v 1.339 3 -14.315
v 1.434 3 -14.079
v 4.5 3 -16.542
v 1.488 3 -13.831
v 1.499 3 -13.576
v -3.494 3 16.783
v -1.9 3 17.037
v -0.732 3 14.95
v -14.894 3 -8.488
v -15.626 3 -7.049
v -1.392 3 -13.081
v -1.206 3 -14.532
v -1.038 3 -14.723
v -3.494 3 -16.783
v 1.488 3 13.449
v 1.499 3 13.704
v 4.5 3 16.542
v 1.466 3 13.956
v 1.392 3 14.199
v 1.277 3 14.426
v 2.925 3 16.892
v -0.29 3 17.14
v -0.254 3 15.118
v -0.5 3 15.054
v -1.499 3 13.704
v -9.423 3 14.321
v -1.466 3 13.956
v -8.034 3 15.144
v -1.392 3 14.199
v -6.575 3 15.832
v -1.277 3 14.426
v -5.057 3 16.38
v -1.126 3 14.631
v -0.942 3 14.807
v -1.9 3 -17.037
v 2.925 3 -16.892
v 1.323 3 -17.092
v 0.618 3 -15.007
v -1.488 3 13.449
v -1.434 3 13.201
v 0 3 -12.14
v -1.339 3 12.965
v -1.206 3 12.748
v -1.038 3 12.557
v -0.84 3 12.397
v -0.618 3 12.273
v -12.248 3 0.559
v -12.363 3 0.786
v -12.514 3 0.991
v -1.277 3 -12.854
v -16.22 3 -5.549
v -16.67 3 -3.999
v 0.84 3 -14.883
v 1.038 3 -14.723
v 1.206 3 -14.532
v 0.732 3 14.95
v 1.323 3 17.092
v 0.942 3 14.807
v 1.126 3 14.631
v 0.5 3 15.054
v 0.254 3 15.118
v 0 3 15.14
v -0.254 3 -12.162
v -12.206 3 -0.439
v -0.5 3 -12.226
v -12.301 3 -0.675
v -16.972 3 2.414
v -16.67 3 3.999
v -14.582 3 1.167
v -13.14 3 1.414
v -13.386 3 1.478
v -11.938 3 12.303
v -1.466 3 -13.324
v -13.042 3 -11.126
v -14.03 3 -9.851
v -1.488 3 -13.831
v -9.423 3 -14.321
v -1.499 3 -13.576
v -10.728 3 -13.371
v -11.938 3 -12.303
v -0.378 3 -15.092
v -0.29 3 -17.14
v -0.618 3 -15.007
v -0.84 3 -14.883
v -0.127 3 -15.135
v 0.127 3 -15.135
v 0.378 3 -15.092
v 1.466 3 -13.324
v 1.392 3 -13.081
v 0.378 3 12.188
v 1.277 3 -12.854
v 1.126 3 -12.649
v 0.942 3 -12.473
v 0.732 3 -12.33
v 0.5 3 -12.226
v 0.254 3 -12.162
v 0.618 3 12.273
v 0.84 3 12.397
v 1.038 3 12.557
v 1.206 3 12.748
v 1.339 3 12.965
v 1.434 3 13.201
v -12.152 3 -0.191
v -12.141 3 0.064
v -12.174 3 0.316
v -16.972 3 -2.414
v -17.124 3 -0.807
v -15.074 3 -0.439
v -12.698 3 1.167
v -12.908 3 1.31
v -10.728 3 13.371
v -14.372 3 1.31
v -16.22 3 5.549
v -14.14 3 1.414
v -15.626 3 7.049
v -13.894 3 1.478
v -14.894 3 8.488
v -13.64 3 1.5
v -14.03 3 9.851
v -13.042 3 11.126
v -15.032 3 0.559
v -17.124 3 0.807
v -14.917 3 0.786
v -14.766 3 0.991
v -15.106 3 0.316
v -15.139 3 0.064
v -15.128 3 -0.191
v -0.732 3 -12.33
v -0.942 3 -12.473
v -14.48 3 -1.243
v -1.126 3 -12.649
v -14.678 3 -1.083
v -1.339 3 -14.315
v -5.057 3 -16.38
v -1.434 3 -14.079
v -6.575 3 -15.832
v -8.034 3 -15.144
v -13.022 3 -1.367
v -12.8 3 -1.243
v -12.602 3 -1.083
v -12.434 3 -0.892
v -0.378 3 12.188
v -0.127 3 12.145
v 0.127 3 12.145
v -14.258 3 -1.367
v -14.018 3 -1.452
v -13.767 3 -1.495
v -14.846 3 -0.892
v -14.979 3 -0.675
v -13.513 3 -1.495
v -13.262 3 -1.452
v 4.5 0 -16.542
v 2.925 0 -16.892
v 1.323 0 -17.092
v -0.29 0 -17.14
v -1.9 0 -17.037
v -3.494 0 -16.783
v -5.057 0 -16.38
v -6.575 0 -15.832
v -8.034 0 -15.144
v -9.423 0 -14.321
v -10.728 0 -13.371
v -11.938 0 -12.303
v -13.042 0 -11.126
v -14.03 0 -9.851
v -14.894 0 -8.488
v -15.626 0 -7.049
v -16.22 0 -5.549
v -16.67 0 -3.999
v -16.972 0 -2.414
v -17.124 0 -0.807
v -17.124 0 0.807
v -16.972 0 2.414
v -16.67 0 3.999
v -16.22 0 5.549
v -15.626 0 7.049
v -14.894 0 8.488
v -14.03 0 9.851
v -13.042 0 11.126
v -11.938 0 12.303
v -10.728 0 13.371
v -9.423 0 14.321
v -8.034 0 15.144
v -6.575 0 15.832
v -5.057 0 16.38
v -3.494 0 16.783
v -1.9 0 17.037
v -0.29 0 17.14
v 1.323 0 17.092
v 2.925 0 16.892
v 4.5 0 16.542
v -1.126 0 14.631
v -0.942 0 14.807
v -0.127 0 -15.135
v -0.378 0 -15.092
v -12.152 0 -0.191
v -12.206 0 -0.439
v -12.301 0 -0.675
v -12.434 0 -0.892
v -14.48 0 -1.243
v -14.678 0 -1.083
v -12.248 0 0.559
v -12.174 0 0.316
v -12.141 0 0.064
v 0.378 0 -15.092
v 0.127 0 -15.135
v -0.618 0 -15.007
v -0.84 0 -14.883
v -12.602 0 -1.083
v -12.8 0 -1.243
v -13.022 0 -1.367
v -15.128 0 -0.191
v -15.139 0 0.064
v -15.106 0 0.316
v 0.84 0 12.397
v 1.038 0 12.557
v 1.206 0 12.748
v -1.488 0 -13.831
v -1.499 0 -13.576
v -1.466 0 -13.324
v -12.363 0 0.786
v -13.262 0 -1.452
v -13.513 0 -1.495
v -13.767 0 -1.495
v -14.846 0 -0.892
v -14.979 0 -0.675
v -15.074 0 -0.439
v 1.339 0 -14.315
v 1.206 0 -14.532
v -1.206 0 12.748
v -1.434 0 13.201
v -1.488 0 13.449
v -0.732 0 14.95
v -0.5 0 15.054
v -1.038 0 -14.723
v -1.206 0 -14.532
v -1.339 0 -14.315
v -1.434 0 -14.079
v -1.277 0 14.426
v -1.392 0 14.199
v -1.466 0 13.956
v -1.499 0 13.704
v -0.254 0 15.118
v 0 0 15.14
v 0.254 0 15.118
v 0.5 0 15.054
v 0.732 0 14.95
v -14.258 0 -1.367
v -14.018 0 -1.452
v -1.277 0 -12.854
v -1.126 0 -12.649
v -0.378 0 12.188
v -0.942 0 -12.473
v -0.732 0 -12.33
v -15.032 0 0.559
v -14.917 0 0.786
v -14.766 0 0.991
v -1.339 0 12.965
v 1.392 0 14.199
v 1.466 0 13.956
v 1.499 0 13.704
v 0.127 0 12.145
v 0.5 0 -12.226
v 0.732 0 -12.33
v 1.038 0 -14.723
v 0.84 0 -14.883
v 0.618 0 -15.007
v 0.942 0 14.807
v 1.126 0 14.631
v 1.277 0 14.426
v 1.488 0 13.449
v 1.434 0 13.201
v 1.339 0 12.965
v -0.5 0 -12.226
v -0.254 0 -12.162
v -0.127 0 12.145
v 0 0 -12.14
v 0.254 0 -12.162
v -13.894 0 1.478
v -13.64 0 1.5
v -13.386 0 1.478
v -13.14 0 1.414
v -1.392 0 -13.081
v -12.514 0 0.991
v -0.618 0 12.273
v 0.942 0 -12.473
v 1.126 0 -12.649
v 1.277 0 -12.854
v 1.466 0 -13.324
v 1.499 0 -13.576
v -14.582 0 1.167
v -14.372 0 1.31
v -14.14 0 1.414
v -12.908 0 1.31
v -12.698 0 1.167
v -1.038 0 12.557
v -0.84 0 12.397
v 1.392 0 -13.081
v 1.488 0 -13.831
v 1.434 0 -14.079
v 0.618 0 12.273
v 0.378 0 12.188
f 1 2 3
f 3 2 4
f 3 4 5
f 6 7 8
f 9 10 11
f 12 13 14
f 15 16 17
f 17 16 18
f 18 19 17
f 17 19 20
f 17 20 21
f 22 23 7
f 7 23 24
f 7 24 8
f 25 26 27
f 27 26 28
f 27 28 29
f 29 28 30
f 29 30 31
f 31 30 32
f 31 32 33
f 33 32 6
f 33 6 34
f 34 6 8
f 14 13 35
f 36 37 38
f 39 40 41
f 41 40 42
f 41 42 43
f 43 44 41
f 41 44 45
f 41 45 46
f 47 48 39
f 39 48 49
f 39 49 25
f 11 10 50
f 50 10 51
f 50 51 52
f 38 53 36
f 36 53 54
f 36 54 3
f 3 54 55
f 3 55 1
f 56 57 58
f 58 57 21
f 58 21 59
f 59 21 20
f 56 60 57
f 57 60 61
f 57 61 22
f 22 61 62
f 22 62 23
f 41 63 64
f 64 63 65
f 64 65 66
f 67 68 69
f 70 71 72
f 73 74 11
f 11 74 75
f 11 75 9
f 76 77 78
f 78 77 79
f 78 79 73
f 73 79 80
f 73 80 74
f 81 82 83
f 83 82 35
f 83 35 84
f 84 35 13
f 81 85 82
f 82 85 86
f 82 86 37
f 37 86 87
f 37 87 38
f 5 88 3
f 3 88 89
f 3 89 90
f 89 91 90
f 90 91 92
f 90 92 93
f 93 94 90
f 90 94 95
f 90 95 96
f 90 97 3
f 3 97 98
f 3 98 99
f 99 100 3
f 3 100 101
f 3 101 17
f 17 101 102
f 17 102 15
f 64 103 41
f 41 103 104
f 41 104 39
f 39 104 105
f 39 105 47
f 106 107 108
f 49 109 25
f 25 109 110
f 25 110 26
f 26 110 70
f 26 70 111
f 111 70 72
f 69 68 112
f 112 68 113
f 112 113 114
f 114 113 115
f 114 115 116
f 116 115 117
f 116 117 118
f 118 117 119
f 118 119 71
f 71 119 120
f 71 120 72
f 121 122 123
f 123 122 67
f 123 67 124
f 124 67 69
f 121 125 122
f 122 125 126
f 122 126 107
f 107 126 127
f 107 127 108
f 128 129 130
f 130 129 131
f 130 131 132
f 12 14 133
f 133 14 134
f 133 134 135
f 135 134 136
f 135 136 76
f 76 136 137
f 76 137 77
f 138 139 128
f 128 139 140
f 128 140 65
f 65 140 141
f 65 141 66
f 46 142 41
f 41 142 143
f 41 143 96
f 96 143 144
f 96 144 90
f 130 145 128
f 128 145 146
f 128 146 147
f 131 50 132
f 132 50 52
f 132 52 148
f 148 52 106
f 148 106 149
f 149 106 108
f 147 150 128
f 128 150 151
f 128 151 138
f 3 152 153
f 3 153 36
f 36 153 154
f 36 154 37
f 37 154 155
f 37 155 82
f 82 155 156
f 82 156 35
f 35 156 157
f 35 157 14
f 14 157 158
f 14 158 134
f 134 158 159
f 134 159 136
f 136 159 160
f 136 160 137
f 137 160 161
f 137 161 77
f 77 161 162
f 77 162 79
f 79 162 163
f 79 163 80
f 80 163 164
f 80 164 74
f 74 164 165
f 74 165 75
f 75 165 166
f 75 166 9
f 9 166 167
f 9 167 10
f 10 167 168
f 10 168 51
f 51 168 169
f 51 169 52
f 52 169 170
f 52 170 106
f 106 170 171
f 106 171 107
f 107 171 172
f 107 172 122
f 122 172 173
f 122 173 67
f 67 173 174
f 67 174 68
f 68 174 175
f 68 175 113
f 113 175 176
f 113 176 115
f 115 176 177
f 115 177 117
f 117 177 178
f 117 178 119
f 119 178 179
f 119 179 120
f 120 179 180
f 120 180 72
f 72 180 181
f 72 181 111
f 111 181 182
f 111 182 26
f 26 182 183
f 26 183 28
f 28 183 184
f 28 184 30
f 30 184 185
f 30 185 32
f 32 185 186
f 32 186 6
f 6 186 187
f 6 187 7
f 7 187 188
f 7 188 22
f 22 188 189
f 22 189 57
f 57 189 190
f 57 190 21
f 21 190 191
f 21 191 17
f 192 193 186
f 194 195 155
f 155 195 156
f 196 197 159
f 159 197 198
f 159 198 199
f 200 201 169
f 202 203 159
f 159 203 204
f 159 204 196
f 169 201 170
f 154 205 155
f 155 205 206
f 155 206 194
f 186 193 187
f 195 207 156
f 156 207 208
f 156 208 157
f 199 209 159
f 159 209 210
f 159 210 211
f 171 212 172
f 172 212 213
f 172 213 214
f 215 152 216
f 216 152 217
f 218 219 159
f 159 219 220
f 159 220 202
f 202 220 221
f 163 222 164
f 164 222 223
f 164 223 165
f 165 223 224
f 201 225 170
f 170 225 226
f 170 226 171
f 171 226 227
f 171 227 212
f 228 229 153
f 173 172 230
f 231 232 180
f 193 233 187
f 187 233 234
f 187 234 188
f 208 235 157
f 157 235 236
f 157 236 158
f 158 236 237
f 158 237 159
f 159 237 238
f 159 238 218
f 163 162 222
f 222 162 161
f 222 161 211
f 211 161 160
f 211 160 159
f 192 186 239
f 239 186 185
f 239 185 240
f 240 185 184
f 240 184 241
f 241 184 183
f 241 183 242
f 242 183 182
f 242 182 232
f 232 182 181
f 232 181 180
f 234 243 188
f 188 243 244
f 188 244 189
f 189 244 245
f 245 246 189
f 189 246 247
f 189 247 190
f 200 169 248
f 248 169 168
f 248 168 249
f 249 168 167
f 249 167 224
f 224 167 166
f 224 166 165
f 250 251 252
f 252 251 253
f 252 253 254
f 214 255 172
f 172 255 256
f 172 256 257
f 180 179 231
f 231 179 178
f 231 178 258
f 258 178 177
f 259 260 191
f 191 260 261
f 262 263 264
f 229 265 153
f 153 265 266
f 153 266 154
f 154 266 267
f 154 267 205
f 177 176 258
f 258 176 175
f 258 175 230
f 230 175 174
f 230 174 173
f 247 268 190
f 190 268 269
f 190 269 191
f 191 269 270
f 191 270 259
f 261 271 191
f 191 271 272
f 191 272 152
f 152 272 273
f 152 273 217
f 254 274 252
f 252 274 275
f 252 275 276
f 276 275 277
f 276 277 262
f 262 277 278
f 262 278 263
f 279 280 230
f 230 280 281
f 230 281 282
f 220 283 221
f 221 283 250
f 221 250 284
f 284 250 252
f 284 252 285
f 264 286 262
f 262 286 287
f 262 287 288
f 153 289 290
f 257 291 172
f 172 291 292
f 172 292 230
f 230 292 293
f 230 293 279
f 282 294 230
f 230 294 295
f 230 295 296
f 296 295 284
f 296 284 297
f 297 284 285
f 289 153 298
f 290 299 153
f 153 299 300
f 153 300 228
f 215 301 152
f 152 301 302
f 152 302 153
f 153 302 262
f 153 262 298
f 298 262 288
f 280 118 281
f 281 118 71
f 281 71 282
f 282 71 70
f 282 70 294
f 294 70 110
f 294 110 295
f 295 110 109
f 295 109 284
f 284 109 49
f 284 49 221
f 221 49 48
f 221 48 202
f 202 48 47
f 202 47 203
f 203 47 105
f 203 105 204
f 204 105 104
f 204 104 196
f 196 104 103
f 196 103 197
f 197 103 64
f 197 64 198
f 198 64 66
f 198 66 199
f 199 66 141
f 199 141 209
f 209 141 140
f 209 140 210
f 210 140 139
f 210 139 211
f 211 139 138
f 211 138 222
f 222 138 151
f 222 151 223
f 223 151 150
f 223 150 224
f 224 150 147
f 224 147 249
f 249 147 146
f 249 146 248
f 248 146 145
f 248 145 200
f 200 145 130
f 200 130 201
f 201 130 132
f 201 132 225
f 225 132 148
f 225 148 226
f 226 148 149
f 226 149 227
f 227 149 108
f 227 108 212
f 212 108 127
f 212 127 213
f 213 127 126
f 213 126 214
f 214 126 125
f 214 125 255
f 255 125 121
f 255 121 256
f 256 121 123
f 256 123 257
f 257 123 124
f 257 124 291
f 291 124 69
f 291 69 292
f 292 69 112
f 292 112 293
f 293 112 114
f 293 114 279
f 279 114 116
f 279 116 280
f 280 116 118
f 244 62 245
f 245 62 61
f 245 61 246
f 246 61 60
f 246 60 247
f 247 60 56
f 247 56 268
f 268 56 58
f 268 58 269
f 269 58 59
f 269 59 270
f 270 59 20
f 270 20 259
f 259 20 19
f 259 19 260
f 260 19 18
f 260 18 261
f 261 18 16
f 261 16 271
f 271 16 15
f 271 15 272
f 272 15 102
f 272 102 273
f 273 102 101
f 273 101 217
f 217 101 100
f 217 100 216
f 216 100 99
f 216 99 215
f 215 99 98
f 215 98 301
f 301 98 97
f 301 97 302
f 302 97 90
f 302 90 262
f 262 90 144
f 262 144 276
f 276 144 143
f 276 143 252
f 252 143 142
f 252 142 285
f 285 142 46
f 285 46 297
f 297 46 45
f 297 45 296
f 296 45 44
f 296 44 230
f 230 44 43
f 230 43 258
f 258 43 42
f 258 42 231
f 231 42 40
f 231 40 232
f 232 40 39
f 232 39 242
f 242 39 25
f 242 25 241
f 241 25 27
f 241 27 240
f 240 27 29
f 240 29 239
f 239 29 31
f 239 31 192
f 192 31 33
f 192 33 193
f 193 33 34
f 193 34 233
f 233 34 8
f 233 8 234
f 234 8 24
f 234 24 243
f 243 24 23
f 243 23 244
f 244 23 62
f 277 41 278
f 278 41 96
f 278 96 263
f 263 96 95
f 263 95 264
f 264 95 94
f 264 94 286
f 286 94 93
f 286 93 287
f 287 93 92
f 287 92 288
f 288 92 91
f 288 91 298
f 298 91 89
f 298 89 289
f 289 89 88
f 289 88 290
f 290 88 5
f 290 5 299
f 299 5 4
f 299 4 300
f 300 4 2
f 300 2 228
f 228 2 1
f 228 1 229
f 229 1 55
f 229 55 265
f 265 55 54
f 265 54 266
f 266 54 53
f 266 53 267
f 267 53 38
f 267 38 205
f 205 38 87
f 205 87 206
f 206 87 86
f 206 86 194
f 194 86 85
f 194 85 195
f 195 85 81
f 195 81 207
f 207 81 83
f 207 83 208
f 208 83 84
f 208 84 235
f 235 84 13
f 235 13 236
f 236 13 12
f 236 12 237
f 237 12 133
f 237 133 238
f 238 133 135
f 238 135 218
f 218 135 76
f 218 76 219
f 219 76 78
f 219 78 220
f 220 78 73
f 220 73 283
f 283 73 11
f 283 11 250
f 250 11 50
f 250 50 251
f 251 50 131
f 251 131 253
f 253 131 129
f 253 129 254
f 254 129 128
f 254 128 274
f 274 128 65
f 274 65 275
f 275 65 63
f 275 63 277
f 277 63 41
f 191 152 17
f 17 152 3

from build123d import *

# Parameters (mm, degrees)
CROQUIS2_R                 = 1.5
CORTAR_EXTRUIR1_DEPTH      = 10
CROQUIS3_R                 = 1.5
SALIENTE_EXTRUIR1_DEPTH    = 3
CORTAR_EXTRUIR2_DEPTH      = 21
CORTAR_EXTRUIR2_DEPTH_BACK = 19
CROQUIS4_W                 = 22.988642253
CROQUIS4_H                 = 9.839710734
CROQUIS5_W                 = 15
CROQUIS5_H                 = 36.969240602
CORTAR_EXTRUIR3_DEPTH      = 19
CROQUIS6_W                 = 9.874263727
CROQUIS6_H                 = 12.802666517
SALIENTE_EXTRUIR2_DEPTH    = 3


with BuildPart() as part:
    # Croquis1 → Revolución1 (revolve)
    with BuildSketch(Plane.XY, mode=Mode.PRIVATE) as revoluci_n1_sk:
        Polygon((-4, 0), (-4, 7), (-5, 7), (-10.142857143, 3), (-17.142857143, 3), (-17.142857143, 0), (-14, 0), align=None)
    revolve(revoluci_n1_sk.sketch.rotate(Axis((0, 0, 0), (0, 1, 0)), 270), axis=Axis((0, 0, 0), (0, 1, 0)))

    # Croquis2 → Cortar-Extruir1 (cut)
    with BuildSketch(Plane(origin=(0, 3, 0), x_dir=(1, 0, 0), z_dir=(0, 1, 0))):
        with Locations(Location((0, 13.64, 0), (0, 0, 270))):
            Circle(CROQUIS2_R)
        with Locations(Location((13.64, 0, 0), (0, 0, 270))):
            Circle(CROQUIS2_R)
        with Locations(Location((0, -13.64, 0), (0, 0, 270))):
            Circle(CROQUIS2_R)
        with Locations(Location((-13.64, 0, 0), (0, 0, 270))):
            Circle(CROQUIS2_R)
    extrude(amount=-CORTAR_EXTRUIR1_DEPTH, mode=Mode.SUBTRACT)

    # Croquis3 → Saliente-Extruir1 (add)
    with BuildSketch(Plane(origin=(0, 3, 0), x_dir=(1, 0, 0), z_dir=(0, 1, 0))):
        with Locations((13.64, 0)):
            Circle(CROQUIS3_R)
    extrude(amount=-SALIENTE_EXTRUIR1_DEPTH)

    # Croquis4 → Cortar-Extruir2 (cut, two sides: drawn at the far end of the back side and taken through both)
    with BuildSketch(Plane.XY.offset(-CORTAR_EXTRUIR2_DEPTH_BACK)):
        with Locations((-1.351463984, 7.919855367)):
            Rectangle(CROQUIS4_W, CROQUIS4_H)
    extrude(amount=CORTAR_EXTRUIR2_DEPTH + CORTAR_EXTRUIR2_DEPTH_BACK, mode=Mode.SUBTRACT)

    # Croquis5 → Cortar-Extruir3 (cut)
    with BuildSketch(Plane(origin=(0, 3, 0), x_dir=(1, 0, 0), z_dir=(0, 1, 0))):
        with Locations((12, -0.045754011)):
            Rectangle(CROQUIS5_W, CROQUIS5_H)
    extrude(amount=-CORTAR_EXTRUIR3_DEPTH, mode=Mode.SUBTRACT)

    # Croquis6 → Saliente-Extruir2 (add)
    with BuildSketch(Plane(origin=(0, 3, 0), x_dir=(1, 0, 0), z_dir=(0, 1, 0))):
        with Locations((-0.437131864, -0.705770923)):
            Rectangle(CROQUIS6_W, CROQUIS6_H)
    extrude(amount=-SALIENTE_EXTRUIR2_DEPTH)


solid = part.part
